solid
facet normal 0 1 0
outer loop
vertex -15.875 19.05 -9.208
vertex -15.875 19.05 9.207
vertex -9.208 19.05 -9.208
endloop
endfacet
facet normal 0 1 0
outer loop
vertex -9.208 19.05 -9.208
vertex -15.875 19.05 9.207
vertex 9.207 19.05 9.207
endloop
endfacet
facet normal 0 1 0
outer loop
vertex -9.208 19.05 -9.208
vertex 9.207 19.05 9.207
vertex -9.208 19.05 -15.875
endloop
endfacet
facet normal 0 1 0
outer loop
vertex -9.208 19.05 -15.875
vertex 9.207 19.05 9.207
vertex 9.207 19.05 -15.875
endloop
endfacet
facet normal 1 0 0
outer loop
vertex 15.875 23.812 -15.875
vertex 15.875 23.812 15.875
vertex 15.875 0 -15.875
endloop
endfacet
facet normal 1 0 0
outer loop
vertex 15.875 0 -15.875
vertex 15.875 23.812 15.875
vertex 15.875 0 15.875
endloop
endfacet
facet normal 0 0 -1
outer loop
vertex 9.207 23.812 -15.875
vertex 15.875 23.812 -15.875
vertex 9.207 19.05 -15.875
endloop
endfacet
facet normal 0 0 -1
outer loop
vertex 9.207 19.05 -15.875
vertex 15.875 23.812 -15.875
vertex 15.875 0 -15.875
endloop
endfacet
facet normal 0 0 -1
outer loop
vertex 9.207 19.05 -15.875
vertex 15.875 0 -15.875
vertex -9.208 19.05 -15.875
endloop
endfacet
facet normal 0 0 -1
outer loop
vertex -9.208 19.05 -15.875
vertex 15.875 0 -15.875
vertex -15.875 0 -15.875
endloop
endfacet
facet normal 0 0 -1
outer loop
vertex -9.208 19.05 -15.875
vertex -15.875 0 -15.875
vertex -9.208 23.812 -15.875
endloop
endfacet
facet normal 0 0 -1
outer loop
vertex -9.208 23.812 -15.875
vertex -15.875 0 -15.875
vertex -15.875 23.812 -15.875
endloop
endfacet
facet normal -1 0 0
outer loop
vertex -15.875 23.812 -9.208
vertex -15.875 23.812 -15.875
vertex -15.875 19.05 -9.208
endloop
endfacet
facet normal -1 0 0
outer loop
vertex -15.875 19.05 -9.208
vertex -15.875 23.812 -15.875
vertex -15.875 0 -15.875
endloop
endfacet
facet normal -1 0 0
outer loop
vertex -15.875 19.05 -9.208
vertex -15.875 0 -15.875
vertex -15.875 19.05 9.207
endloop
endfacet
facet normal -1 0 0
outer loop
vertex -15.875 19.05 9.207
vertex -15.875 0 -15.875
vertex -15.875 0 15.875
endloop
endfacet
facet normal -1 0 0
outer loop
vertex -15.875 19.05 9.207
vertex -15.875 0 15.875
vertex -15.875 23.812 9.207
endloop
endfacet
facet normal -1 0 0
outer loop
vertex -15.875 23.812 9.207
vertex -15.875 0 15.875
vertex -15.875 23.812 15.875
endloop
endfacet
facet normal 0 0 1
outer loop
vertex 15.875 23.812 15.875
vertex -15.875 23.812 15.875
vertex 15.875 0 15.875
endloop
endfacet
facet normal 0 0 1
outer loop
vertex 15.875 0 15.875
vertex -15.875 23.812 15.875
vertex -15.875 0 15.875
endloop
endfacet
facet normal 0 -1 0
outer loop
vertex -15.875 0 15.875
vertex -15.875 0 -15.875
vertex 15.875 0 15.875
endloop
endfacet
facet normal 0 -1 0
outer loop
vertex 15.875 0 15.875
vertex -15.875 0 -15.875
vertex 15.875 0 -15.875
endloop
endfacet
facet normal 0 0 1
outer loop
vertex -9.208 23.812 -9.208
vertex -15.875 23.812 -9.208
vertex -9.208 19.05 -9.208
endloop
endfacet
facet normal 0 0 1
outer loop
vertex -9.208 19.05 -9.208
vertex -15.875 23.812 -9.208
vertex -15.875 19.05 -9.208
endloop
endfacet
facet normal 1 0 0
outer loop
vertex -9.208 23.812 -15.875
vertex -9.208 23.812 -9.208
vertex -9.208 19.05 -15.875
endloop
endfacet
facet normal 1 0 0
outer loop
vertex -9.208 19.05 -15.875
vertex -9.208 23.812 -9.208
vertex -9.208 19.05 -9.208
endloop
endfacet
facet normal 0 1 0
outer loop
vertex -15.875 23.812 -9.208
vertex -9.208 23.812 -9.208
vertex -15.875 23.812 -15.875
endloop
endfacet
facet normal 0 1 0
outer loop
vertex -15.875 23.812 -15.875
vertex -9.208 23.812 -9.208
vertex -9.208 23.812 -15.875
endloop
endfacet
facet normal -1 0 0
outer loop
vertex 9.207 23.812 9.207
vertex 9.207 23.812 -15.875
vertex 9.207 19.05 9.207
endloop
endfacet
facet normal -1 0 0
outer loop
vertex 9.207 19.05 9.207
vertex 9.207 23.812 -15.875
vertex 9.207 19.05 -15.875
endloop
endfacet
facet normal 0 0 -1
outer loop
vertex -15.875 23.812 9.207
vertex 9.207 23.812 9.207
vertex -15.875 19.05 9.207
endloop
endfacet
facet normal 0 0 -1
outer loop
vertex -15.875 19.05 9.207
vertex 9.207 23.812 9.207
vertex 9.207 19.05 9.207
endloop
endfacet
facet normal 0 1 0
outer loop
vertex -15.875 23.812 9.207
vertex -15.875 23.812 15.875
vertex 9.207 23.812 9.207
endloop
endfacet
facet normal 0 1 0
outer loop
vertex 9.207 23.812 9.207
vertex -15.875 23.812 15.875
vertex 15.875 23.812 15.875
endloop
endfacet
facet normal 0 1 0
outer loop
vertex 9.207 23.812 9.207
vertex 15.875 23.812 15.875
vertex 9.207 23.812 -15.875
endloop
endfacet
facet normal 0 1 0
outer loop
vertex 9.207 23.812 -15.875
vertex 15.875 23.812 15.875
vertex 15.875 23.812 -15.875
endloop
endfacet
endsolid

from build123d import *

# Parameters (mm, degrees)
SKETCH1_W           = 31.75
SKETCH1_H           = 31.75
BOSS_EXTRUDE1_DEPTH = 19.05
SKETCH2_W           = 6.6675
SKETCH2_H           = 6.6675
BOSS_EXTRUDE2_DEPTH = 4.7625


with BuildPart() as part:
    # Sketch1 → Boss-Extrude1 (new body)
    with BuildSketch(Plane(origin=(0, 0, 0), x_dir=(1, 0, 0), z_dir=(0, 1, 0))):
        Rectangle(SKETCH1_W, SKETCH1_H)
    extrude(amount=BOSS_EXTRUDE1_DEPTH)

    # Sketch2 → Boss-Extrude2 (add)
    with BuildSketch(Plane(origin=(0, 19.05, 0), x_dir=(1, 0, 0), z_dir=(0, 1, 0))):
        with Locations((-12.54125, 12.54125)):
            Rectangle(SKETCH2_W, SKETCH2_H)
        Polygon((-15.875, -9.2075), (9.2075, -9.2075), (9.2075, 15.875), (15.875, 15.875), (15.875, -15.875), (-15.875, -15.875), align=None)
    extrude(amount=BOSS_EXTRUDE2_DEPTH)


solid = part.part
